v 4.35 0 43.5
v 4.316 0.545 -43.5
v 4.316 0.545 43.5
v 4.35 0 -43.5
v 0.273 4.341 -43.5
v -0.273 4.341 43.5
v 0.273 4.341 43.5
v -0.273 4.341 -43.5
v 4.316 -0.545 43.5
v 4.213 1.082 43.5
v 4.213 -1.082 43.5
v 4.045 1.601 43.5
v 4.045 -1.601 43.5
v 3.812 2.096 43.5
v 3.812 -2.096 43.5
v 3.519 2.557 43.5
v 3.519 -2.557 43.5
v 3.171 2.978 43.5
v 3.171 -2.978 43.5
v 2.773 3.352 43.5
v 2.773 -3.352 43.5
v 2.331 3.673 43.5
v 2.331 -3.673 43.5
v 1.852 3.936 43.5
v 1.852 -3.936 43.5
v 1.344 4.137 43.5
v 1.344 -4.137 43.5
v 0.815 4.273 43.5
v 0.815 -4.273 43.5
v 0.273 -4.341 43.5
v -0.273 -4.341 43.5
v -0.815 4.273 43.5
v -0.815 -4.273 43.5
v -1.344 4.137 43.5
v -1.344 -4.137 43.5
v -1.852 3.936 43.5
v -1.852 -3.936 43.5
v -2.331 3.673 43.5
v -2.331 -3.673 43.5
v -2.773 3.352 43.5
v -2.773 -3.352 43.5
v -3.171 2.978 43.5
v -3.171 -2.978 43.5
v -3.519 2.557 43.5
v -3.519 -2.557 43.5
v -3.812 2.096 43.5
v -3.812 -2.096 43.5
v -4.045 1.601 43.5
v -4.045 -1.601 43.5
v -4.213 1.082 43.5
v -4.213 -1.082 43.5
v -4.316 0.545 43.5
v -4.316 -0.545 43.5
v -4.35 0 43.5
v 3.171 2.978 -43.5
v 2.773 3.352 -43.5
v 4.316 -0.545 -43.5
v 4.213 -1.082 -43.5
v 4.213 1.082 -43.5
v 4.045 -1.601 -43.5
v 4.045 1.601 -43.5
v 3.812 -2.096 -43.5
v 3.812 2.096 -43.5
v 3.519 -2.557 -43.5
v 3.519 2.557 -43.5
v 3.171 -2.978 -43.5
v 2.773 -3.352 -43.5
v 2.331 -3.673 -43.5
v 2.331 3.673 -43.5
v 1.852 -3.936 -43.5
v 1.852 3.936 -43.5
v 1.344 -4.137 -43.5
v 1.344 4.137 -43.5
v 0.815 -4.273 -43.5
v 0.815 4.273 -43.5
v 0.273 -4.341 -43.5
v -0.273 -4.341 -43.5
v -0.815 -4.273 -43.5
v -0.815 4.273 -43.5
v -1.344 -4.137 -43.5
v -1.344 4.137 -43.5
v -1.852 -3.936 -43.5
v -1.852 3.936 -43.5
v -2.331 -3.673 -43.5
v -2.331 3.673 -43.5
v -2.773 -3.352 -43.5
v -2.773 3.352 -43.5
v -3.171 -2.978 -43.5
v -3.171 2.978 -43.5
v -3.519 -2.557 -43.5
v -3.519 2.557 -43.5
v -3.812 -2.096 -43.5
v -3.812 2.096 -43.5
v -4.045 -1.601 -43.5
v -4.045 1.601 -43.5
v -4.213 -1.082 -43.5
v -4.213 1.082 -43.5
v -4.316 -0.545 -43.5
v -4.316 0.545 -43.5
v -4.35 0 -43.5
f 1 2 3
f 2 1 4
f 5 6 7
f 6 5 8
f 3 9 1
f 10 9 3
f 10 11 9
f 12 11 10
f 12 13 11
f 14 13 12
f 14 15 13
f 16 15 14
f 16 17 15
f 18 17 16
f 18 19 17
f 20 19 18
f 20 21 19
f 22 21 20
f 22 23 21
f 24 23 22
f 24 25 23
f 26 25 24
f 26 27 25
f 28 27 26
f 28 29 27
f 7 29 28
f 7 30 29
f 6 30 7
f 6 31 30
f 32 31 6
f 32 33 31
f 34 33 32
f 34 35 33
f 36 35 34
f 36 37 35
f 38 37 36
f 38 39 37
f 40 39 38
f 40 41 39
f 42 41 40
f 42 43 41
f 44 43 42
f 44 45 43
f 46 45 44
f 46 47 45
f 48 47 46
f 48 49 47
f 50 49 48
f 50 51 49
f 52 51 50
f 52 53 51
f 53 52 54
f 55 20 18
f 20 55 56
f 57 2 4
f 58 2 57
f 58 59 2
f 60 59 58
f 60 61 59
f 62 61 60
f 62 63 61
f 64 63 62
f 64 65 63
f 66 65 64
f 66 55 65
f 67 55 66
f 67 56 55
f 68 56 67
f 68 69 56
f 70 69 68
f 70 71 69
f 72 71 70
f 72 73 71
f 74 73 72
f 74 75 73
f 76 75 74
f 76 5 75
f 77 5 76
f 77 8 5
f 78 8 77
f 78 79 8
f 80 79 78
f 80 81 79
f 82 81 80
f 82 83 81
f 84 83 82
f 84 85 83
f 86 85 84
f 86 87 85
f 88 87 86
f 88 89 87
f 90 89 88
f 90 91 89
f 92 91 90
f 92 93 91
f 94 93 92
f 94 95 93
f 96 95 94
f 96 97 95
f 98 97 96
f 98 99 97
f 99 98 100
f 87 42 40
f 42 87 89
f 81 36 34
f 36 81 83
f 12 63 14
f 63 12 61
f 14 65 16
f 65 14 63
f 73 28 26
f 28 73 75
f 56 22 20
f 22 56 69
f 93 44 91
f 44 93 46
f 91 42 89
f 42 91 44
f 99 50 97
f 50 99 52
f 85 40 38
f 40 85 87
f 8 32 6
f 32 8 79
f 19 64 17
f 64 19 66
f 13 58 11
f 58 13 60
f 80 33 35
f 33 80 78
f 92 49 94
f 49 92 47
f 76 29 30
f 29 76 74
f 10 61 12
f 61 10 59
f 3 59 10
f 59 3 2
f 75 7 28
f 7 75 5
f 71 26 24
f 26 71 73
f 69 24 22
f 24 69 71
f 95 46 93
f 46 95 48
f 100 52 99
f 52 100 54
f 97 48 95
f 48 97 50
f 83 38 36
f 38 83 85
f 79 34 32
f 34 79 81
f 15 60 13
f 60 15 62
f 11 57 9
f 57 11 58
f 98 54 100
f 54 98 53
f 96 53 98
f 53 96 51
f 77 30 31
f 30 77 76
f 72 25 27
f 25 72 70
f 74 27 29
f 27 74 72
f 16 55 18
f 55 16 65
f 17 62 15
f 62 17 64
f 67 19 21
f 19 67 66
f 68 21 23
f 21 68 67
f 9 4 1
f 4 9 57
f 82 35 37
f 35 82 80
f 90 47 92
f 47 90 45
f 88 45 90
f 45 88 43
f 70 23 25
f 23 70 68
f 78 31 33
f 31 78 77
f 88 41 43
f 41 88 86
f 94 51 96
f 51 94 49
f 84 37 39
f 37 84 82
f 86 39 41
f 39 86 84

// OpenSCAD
$fn = 50;


difference() {
	union() {
		translate(v = [0, 0, -43.5000000000]) {
			cylinder(h = 87, r = 4.3500000000);
		}
	}
	union() {
		translate(v = [0, 0, -100.0000000000]) {
			cylinder(h = 200, r = 0);
		}
	}
}
